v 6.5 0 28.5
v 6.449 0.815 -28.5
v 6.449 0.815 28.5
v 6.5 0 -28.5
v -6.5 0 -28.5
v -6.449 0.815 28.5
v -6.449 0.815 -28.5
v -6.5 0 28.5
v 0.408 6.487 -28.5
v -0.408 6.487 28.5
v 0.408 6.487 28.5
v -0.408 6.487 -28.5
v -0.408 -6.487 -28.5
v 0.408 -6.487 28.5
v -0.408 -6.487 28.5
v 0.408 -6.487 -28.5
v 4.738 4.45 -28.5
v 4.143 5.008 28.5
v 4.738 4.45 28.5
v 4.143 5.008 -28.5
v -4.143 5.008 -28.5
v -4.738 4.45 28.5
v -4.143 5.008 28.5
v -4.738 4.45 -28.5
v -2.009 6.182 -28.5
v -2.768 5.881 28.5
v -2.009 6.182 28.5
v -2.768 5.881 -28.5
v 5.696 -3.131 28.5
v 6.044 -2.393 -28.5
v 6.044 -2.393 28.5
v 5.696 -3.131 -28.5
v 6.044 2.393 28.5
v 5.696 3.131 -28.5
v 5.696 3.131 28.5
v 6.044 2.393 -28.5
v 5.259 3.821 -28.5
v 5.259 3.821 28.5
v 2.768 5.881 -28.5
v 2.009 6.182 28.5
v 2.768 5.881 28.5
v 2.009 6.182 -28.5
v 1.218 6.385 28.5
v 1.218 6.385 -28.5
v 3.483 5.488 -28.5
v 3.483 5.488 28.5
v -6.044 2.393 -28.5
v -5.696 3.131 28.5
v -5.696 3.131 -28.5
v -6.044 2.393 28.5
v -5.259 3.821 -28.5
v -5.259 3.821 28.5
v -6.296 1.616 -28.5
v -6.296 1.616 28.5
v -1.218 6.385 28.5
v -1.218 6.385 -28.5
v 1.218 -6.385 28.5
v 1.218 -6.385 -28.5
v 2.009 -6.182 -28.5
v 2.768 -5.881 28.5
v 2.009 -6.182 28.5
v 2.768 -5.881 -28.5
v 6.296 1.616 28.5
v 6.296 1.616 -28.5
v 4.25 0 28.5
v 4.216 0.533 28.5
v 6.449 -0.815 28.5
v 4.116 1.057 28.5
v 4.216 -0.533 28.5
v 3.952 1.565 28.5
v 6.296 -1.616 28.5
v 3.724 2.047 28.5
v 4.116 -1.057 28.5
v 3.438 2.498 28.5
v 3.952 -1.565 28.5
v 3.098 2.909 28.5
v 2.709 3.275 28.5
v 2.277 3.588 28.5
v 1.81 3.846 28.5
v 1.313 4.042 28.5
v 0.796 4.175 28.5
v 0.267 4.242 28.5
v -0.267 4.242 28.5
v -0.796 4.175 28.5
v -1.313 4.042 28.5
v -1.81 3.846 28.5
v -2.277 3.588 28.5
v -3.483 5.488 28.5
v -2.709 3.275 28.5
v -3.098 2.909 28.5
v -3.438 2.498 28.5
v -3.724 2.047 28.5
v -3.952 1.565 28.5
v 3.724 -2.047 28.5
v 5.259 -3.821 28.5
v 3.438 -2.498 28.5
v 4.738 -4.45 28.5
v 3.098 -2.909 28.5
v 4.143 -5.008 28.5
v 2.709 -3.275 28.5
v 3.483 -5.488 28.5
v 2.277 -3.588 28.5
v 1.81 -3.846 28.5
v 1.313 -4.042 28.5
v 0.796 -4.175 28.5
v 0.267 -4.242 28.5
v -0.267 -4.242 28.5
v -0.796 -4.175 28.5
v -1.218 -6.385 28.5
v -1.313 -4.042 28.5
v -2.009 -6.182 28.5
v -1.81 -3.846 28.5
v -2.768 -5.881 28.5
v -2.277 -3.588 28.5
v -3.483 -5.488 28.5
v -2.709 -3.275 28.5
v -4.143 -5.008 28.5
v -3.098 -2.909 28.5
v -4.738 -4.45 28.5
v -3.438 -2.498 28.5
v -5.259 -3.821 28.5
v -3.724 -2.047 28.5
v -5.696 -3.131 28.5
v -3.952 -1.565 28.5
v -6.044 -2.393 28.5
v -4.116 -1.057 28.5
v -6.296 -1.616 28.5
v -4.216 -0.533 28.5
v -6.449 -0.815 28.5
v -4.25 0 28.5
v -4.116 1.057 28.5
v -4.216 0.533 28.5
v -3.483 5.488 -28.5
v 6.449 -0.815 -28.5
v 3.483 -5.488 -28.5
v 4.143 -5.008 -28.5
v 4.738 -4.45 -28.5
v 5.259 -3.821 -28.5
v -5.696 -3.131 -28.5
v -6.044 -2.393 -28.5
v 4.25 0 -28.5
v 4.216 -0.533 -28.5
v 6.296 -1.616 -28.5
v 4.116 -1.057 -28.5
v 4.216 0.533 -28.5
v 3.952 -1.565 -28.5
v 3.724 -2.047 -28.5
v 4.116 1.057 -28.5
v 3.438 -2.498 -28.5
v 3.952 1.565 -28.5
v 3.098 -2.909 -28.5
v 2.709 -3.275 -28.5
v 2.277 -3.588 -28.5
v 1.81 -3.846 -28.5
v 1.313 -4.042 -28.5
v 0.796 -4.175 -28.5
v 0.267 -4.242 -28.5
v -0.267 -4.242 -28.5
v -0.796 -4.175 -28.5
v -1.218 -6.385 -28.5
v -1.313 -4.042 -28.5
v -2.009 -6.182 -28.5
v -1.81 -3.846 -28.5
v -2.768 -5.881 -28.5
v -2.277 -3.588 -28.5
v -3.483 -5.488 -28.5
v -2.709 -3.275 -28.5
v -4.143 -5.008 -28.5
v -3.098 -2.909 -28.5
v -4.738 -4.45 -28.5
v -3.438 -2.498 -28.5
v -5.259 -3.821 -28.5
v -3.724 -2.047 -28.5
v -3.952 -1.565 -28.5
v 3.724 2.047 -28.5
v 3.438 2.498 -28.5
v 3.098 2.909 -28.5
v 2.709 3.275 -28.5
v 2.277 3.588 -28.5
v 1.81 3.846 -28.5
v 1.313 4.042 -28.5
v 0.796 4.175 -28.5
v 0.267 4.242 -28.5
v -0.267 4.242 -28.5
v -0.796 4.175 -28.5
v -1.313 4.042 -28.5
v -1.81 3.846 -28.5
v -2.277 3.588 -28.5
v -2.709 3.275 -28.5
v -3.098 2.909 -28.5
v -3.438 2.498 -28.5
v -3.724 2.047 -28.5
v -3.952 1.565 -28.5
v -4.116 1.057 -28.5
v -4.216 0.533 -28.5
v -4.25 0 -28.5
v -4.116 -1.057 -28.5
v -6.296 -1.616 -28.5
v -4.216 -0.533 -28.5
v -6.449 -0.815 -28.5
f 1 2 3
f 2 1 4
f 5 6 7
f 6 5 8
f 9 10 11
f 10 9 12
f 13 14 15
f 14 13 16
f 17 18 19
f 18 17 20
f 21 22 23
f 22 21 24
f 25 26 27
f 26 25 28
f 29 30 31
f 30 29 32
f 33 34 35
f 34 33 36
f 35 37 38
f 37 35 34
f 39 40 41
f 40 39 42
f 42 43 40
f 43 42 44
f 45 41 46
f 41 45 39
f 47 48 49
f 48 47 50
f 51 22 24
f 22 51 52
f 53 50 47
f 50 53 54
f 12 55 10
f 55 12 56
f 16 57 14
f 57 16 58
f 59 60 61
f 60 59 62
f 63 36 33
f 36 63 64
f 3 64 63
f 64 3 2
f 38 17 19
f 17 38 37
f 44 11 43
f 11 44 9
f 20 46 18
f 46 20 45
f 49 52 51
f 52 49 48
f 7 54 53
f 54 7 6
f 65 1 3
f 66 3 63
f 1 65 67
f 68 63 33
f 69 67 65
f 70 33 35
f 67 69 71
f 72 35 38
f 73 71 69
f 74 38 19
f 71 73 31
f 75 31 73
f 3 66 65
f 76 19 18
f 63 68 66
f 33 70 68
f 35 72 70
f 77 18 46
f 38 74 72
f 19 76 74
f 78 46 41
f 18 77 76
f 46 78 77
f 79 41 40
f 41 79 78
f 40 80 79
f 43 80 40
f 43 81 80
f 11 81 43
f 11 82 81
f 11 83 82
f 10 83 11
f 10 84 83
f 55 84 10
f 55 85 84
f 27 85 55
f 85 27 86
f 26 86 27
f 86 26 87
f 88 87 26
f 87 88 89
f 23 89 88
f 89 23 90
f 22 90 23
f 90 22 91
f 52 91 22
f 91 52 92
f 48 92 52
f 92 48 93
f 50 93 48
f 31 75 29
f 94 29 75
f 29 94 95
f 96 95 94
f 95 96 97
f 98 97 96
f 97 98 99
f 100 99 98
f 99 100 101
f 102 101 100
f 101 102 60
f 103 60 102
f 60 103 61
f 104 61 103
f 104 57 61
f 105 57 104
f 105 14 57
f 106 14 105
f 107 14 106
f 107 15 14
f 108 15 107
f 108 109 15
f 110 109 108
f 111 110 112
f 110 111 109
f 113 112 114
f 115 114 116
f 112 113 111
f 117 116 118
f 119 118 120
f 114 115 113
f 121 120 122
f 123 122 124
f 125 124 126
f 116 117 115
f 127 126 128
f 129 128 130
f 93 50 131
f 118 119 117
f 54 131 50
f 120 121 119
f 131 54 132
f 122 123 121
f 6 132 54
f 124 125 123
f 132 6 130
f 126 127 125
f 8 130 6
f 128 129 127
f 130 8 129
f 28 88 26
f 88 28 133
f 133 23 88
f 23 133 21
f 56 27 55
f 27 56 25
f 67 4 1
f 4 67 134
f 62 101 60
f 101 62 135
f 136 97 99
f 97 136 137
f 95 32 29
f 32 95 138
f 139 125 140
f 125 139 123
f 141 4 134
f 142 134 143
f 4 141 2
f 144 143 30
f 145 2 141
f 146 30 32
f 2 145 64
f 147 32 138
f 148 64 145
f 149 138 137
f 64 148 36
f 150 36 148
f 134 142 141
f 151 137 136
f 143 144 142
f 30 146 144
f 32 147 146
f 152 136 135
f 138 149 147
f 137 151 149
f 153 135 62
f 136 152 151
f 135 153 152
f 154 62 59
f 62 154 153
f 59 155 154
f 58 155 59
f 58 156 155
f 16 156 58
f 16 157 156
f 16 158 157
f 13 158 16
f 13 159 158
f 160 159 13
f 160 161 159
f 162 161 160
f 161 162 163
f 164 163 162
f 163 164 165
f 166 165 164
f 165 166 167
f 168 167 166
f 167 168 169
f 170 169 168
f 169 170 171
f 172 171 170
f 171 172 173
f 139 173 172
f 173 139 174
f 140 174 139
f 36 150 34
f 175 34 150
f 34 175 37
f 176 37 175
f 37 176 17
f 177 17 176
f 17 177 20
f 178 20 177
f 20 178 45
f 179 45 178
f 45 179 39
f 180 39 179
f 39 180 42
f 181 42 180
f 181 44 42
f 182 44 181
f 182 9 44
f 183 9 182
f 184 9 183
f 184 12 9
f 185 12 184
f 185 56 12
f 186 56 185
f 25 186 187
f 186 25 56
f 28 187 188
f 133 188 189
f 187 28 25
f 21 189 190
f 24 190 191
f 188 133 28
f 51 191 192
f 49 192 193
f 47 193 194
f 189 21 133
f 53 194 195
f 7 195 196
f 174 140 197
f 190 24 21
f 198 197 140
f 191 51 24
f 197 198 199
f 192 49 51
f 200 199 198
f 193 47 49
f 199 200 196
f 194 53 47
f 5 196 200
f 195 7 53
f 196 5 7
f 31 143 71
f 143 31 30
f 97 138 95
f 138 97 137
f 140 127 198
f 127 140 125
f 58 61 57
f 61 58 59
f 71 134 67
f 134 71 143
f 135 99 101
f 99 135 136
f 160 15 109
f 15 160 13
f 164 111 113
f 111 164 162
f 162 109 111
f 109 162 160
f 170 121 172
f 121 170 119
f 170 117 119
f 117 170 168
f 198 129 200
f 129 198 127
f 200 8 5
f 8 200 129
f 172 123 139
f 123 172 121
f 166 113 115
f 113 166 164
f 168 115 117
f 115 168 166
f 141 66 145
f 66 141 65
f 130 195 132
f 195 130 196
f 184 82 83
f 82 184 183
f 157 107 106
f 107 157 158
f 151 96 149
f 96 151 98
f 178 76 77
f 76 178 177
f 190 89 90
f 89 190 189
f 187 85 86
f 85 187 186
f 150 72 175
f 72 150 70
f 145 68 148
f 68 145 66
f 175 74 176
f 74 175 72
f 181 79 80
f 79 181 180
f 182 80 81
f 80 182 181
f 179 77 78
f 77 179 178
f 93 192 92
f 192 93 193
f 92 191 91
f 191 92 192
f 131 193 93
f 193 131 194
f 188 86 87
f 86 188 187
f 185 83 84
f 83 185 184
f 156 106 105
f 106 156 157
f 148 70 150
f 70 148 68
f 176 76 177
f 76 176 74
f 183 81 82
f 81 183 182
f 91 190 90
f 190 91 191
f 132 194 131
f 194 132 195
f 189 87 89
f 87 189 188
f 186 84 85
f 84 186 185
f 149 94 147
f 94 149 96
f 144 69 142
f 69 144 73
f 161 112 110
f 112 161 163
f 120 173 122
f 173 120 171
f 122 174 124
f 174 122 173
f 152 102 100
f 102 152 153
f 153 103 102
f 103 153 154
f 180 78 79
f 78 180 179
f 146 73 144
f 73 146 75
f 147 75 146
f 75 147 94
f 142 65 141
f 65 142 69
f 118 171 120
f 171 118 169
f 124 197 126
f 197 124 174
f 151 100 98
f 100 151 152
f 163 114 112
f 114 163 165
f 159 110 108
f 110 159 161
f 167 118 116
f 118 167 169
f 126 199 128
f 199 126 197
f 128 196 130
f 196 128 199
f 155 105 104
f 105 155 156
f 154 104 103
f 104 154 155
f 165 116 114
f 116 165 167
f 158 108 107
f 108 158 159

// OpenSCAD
$fn = 50;


difference() {
	union() {
		translate(v = [0, 0, -28.5000000000]) {
			cylinder(h = 57, r = 6.5000000000);
		}
	}
	union() {
		translate(v = [0, 0, -100.0000000000]) {
			cylinder(h = 200, r = 4.2500000000);
		}
	}
}
